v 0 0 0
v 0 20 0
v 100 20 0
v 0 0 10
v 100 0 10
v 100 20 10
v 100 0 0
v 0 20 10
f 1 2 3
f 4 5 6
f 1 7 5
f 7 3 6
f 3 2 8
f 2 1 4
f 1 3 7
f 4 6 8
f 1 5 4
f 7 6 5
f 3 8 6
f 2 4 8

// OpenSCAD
// Original MechIntel educational model. CC0-1.0. Units: mm.
// Not a standardized or load-rated component.
$fn=96;
length=100;
width=20;
height=10;
cube([length,width,height]);
